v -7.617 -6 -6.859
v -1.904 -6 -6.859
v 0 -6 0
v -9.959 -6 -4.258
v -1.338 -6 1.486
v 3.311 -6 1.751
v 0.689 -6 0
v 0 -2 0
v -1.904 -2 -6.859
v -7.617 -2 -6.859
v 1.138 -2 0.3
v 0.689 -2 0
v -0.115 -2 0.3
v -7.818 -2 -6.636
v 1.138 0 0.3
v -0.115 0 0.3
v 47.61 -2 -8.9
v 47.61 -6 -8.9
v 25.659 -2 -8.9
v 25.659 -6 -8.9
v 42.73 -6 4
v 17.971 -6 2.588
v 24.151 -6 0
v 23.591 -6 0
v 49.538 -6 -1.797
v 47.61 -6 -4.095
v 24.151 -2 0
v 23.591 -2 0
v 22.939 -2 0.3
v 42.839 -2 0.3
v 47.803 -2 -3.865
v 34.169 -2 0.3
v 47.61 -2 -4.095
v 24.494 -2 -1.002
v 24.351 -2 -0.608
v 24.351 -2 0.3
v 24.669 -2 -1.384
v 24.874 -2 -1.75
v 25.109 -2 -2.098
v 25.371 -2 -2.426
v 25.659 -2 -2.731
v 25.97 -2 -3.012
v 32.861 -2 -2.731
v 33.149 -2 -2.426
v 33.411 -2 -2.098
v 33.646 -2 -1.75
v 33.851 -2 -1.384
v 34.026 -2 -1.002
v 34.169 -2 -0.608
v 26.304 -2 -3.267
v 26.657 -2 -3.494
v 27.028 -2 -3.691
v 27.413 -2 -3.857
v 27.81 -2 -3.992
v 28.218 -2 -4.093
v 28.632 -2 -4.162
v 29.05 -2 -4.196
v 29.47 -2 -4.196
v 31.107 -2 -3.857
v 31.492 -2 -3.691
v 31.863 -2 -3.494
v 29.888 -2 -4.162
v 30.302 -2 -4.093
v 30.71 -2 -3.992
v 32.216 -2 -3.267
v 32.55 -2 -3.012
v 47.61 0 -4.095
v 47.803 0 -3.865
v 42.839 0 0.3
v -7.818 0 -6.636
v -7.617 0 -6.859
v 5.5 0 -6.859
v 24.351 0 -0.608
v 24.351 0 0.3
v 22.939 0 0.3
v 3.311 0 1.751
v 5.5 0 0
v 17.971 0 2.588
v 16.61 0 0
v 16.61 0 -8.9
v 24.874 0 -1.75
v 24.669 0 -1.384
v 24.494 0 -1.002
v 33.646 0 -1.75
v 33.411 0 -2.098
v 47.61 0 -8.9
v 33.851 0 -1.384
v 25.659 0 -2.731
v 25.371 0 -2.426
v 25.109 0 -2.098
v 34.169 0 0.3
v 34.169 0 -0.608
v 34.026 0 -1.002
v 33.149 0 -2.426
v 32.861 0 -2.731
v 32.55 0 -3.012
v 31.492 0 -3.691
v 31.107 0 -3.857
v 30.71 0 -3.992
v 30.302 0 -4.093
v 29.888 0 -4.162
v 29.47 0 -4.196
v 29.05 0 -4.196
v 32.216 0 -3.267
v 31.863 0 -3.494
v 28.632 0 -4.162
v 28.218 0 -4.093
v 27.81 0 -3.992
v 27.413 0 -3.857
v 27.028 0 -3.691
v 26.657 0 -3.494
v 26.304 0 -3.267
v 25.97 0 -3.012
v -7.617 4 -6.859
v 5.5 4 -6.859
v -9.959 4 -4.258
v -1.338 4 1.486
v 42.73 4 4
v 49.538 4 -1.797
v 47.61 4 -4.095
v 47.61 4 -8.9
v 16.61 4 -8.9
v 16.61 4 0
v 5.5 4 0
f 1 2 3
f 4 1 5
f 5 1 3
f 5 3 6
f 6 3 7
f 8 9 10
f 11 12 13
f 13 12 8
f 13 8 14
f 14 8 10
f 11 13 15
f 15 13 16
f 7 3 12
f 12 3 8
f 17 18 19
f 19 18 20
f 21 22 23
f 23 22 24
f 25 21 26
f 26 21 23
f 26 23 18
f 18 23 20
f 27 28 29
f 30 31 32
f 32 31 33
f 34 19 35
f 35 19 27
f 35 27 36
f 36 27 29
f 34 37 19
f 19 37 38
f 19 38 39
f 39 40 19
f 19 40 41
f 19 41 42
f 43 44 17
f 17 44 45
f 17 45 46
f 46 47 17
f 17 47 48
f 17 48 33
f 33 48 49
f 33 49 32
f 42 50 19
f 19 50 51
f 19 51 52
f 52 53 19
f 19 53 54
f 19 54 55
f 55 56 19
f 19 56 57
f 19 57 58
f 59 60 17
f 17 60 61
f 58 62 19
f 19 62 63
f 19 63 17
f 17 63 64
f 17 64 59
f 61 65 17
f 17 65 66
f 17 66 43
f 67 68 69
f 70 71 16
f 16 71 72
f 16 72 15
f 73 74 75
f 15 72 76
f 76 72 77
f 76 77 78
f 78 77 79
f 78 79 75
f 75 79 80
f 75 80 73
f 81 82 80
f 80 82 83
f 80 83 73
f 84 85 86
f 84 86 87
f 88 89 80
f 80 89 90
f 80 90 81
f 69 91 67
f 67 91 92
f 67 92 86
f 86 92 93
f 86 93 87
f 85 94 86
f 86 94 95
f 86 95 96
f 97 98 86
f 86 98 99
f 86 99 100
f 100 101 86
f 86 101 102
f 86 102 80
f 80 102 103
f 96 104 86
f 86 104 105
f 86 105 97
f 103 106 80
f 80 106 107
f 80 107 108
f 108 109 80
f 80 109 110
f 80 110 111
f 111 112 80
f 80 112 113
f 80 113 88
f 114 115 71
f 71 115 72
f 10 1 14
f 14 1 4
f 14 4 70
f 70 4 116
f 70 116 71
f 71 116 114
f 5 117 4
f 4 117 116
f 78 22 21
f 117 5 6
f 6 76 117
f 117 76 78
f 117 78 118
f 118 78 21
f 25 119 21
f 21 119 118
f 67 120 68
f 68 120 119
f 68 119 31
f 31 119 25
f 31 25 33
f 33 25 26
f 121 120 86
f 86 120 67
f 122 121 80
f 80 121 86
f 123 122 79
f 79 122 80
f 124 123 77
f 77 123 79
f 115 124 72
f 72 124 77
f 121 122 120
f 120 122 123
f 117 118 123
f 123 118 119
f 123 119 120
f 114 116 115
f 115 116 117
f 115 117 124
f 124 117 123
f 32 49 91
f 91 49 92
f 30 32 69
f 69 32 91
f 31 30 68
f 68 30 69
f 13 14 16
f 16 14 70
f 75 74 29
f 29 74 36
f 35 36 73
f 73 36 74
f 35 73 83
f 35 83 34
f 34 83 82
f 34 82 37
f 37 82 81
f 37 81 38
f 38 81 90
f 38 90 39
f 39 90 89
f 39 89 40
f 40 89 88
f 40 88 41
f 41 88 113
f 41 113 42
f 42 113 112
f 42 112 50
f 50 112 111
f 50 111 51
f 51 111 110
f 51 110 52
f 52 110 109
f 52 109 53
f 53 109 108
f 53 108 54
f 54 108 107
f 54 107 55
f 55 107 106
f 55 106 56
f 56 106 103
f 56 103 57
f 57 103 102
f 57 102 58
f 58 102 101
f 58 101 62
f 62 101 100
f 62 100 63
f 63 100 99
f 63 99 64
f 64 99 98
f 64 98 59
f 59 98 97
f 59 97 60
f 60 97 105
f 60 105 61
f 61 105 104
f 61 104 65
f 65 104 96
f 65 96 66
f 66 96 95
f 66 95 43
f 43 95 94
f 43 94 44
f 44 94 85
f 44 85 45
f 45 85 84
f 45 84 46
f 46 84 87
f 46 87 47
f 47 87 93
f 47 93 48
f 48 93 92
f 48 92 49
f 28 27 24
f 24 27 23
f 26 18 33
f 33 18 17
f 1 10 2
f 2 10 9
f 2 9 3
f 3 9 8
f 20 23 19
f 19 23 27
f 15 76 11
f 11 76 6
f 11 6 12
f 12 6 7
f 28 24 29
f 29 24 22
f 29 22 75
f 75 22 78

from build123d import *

# Parameters (mm, degrees)
BOSS_EXTRUDE2_DEPTH = 4
BOSS_EXTRUDE3_DEPTH = 2
BOSS_EXTRUDE4_DEPTH = 4
SKETCH5_W           = 5.555
SKETCH5_H           = 3.214115871
CUT_EXTRUDE1_DEPTH  = 6


with BuildPart() as part:
    # Sketch2 → Boss-Extrude2 (new body)
    with BuildSketch(Plane(origin=(0, 0, 0), x_dir=(1, 0, 0), z_dir=(0, 1, 0))):
        Polygon((5.5, 6.858588715), (-7.617234461, 6.858588715), (-9.959191583, 4.257581826), (-1.338261213, -1.486289651), (42.73, -4), (49.538362829, 1.796672871), (47.61, 4.0948062), (47.61, 8.9), (16.61, 8.9), (16.61, 0), (5.5, 0), align=None)
    extrude(amount=BOSS_EXTRUDE2_DEPTH)

    # Sketch2<9> → Boss-Extrude3 (add)
    with BuildSketch(Plane(origin=(0, 0, 0), x_dir=(1, 0, 0), z_dir=(0, 1, 0))):
        with BuildLine():
            Line((-0.115159211, -0.3), (-7.817973643, 6.635645268))
            Line((-7.817973643, 6.635645268), (-9.959191583, 4.257581826))
            Line((-9.959191583, 4.257581826), (-1.338261213, -1.486289651))
            Line((-1.338261213, -1.486289651), (42.73, -4))
            Line((42.73, -4), (49.538362829, 1.796672871))
            Line((49.538362829, 1.796672871), (47.802836283, 3.864992867))
            Line((47.802836283, 3.864992867), (42.83919107, -0.3))
            Line((42.83919107, -0.3), (34.16881591, -0.3))
            Line((34.16881591, -0.3), (34.16881591, 0.607570661))
            ThreePointArc((34.16881591, 0.607570661), (29.26, 4.2), (24.35118409, 0.607570661))
            Line((24.35118409, 0.607570661), (24.35118409, -0.3))
            Line((24.35118409, -0.3), (-0.115159211, -0.3))
        make_face()
    extrude(amount=-BOSS_EXTRUDE3_DEPTH)

    # Sketch4 → Boss-Extrude4 (add)
    with BuildSketch(Plane(origin=(0, -2, 0), x_dir=(-1, 0, 0), z_dir=(0, -1, 0))):
        Polygon((-47.61, 8.9), (-47.61, 4.0948062), (-49.538362829, 1.796672871), (-42.73, -4), (1.338261213, -1.486289651), (9.959191583, 4.257581826), (7.617234461, 6.858588715), (0, 6.858588715), (0, 0), (-24.15118409, 0), (-24.15118409, 8.9), align=None)
    extrude(amount=BOSS_EXTRUDE4_DEPTH)

    # Sketch5 → Cut-Extrude1 (cut)
    with BuildSketch(Plane(origin=(0, -6, 0), x_dir=(-1, 0, 0), z_dir=(0, -1, 0))):
        Polygon((-25.659003688, 8.9), (-23.590958237, 8.9), (-23.590958237, 0), (-24.15118409, 0), align=None)
        Polygon((-23.590958237, 0), (-16.61, -3.214115871), (-16.61, 0), align=None)
        with Locations((-13.8325, -1.607057936)):
            Rectangle(SKETCH5_W, SKETCH5_H)
        with Locations((-8.2775, -1.607057936)):
            Rectangle(SKETCH5_W, SKETCH5_H)
        Polygon((-5.5, -3.214115871), (-0.689386067, 0), (-5.5, 0), align=None)
        Polygon((0, 0), (-0.689386067, 0), (-0.689386067, 6.858588715), (0, 6.858588715), (1.904308615, 6.858588715), align=None)
    extrude(amount=-CUT_EXTRUDE1_DEPTH, mode=Mode.SUBTRACT)


solid = part.part
